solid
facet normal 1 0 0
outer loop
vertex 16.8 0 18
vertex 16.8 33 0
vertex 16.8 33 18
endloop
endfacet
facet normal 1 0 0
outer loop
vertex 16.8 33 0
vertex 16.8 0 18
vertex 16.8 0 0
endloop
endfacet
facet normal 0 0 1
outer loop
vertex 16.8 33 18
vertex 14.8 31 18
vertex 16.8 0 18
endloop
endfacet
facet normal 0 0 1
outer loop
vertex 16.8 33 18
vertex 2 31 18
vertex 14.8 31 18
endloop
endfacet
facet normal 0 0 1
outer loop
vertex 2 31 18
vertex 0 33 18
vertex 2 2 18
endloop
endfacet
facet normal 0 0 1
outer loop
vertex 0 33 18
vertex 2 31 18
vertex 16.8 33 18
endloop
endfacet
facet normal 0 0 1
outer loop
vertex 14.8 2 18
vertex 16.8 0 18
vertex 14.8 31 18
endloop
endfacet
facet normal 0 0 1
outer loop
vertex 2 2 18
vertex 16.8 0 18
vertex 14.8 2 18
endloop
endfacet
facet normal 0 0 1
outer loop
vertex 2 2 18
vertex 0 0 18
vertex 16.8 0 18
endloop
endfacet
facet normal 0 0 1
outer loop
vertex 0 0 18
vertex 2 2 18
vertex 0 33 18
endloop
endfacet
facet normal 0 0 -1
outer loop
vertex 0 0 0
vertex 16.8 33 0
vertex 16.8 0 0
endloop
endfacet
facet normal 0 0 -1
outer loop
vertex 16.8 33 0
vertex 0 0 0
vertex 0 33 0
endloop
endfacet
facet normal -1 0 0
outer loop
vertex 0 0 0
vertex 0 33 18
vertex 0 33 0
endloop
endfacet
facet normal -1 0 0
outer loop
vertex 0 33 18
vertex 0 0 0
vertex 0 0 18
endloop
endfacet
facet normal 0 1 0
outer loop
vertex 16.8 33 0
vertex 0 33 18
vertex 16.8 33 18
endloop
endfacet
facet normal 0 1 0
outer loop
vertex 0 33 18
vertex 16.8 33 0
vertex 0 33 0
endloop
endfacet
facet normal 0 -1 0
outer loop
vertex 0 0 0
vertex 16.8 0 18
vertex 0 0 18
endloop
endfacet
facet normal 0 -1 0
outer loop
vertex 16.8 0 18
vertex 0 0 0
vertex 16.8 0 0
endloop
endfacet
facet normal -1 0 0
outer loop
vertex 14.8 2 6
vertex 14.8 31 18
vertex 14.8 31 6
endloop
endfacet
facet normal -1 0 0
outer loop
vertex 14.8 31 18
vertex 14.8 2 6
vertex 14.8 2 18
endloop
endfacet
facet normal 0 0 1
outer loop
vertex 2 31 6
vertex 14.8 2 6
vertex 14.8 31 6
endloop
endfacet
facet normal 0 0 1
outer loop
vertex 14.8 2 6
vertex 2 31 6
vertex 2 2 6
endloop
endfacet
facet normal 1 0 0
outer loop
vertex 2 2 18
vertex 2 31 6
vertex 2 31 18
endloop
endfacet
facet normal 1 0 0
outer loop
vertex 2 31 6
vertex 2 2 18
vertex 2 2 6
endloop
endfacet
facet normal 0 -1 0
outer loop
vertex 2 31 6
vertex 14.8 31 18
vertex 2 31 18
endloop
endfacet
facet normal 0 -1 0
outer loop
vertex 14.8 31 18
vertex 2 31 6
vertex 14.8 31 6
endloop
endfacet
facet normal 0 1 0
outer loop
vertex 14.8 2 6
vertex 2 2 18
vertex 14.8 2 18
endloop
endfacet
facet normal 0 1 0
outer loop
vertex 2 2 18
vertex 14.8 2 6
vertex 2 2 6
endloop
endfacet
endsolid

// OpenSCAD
/// a 3D printed container that fits on the LuminexSD


containerX = 16.8;
containerY = 33;//35.45
containerZ = 18;
$fn=50;
wallT = 2;

//tol = 0.1;



difference(){
cube([containerX,containerY,containerZ]);
translate([wallT,wallT,6]){
cube([containerX-2*wallT,containerY-2*wallT,containerZ+2*wallT]);
}
}
